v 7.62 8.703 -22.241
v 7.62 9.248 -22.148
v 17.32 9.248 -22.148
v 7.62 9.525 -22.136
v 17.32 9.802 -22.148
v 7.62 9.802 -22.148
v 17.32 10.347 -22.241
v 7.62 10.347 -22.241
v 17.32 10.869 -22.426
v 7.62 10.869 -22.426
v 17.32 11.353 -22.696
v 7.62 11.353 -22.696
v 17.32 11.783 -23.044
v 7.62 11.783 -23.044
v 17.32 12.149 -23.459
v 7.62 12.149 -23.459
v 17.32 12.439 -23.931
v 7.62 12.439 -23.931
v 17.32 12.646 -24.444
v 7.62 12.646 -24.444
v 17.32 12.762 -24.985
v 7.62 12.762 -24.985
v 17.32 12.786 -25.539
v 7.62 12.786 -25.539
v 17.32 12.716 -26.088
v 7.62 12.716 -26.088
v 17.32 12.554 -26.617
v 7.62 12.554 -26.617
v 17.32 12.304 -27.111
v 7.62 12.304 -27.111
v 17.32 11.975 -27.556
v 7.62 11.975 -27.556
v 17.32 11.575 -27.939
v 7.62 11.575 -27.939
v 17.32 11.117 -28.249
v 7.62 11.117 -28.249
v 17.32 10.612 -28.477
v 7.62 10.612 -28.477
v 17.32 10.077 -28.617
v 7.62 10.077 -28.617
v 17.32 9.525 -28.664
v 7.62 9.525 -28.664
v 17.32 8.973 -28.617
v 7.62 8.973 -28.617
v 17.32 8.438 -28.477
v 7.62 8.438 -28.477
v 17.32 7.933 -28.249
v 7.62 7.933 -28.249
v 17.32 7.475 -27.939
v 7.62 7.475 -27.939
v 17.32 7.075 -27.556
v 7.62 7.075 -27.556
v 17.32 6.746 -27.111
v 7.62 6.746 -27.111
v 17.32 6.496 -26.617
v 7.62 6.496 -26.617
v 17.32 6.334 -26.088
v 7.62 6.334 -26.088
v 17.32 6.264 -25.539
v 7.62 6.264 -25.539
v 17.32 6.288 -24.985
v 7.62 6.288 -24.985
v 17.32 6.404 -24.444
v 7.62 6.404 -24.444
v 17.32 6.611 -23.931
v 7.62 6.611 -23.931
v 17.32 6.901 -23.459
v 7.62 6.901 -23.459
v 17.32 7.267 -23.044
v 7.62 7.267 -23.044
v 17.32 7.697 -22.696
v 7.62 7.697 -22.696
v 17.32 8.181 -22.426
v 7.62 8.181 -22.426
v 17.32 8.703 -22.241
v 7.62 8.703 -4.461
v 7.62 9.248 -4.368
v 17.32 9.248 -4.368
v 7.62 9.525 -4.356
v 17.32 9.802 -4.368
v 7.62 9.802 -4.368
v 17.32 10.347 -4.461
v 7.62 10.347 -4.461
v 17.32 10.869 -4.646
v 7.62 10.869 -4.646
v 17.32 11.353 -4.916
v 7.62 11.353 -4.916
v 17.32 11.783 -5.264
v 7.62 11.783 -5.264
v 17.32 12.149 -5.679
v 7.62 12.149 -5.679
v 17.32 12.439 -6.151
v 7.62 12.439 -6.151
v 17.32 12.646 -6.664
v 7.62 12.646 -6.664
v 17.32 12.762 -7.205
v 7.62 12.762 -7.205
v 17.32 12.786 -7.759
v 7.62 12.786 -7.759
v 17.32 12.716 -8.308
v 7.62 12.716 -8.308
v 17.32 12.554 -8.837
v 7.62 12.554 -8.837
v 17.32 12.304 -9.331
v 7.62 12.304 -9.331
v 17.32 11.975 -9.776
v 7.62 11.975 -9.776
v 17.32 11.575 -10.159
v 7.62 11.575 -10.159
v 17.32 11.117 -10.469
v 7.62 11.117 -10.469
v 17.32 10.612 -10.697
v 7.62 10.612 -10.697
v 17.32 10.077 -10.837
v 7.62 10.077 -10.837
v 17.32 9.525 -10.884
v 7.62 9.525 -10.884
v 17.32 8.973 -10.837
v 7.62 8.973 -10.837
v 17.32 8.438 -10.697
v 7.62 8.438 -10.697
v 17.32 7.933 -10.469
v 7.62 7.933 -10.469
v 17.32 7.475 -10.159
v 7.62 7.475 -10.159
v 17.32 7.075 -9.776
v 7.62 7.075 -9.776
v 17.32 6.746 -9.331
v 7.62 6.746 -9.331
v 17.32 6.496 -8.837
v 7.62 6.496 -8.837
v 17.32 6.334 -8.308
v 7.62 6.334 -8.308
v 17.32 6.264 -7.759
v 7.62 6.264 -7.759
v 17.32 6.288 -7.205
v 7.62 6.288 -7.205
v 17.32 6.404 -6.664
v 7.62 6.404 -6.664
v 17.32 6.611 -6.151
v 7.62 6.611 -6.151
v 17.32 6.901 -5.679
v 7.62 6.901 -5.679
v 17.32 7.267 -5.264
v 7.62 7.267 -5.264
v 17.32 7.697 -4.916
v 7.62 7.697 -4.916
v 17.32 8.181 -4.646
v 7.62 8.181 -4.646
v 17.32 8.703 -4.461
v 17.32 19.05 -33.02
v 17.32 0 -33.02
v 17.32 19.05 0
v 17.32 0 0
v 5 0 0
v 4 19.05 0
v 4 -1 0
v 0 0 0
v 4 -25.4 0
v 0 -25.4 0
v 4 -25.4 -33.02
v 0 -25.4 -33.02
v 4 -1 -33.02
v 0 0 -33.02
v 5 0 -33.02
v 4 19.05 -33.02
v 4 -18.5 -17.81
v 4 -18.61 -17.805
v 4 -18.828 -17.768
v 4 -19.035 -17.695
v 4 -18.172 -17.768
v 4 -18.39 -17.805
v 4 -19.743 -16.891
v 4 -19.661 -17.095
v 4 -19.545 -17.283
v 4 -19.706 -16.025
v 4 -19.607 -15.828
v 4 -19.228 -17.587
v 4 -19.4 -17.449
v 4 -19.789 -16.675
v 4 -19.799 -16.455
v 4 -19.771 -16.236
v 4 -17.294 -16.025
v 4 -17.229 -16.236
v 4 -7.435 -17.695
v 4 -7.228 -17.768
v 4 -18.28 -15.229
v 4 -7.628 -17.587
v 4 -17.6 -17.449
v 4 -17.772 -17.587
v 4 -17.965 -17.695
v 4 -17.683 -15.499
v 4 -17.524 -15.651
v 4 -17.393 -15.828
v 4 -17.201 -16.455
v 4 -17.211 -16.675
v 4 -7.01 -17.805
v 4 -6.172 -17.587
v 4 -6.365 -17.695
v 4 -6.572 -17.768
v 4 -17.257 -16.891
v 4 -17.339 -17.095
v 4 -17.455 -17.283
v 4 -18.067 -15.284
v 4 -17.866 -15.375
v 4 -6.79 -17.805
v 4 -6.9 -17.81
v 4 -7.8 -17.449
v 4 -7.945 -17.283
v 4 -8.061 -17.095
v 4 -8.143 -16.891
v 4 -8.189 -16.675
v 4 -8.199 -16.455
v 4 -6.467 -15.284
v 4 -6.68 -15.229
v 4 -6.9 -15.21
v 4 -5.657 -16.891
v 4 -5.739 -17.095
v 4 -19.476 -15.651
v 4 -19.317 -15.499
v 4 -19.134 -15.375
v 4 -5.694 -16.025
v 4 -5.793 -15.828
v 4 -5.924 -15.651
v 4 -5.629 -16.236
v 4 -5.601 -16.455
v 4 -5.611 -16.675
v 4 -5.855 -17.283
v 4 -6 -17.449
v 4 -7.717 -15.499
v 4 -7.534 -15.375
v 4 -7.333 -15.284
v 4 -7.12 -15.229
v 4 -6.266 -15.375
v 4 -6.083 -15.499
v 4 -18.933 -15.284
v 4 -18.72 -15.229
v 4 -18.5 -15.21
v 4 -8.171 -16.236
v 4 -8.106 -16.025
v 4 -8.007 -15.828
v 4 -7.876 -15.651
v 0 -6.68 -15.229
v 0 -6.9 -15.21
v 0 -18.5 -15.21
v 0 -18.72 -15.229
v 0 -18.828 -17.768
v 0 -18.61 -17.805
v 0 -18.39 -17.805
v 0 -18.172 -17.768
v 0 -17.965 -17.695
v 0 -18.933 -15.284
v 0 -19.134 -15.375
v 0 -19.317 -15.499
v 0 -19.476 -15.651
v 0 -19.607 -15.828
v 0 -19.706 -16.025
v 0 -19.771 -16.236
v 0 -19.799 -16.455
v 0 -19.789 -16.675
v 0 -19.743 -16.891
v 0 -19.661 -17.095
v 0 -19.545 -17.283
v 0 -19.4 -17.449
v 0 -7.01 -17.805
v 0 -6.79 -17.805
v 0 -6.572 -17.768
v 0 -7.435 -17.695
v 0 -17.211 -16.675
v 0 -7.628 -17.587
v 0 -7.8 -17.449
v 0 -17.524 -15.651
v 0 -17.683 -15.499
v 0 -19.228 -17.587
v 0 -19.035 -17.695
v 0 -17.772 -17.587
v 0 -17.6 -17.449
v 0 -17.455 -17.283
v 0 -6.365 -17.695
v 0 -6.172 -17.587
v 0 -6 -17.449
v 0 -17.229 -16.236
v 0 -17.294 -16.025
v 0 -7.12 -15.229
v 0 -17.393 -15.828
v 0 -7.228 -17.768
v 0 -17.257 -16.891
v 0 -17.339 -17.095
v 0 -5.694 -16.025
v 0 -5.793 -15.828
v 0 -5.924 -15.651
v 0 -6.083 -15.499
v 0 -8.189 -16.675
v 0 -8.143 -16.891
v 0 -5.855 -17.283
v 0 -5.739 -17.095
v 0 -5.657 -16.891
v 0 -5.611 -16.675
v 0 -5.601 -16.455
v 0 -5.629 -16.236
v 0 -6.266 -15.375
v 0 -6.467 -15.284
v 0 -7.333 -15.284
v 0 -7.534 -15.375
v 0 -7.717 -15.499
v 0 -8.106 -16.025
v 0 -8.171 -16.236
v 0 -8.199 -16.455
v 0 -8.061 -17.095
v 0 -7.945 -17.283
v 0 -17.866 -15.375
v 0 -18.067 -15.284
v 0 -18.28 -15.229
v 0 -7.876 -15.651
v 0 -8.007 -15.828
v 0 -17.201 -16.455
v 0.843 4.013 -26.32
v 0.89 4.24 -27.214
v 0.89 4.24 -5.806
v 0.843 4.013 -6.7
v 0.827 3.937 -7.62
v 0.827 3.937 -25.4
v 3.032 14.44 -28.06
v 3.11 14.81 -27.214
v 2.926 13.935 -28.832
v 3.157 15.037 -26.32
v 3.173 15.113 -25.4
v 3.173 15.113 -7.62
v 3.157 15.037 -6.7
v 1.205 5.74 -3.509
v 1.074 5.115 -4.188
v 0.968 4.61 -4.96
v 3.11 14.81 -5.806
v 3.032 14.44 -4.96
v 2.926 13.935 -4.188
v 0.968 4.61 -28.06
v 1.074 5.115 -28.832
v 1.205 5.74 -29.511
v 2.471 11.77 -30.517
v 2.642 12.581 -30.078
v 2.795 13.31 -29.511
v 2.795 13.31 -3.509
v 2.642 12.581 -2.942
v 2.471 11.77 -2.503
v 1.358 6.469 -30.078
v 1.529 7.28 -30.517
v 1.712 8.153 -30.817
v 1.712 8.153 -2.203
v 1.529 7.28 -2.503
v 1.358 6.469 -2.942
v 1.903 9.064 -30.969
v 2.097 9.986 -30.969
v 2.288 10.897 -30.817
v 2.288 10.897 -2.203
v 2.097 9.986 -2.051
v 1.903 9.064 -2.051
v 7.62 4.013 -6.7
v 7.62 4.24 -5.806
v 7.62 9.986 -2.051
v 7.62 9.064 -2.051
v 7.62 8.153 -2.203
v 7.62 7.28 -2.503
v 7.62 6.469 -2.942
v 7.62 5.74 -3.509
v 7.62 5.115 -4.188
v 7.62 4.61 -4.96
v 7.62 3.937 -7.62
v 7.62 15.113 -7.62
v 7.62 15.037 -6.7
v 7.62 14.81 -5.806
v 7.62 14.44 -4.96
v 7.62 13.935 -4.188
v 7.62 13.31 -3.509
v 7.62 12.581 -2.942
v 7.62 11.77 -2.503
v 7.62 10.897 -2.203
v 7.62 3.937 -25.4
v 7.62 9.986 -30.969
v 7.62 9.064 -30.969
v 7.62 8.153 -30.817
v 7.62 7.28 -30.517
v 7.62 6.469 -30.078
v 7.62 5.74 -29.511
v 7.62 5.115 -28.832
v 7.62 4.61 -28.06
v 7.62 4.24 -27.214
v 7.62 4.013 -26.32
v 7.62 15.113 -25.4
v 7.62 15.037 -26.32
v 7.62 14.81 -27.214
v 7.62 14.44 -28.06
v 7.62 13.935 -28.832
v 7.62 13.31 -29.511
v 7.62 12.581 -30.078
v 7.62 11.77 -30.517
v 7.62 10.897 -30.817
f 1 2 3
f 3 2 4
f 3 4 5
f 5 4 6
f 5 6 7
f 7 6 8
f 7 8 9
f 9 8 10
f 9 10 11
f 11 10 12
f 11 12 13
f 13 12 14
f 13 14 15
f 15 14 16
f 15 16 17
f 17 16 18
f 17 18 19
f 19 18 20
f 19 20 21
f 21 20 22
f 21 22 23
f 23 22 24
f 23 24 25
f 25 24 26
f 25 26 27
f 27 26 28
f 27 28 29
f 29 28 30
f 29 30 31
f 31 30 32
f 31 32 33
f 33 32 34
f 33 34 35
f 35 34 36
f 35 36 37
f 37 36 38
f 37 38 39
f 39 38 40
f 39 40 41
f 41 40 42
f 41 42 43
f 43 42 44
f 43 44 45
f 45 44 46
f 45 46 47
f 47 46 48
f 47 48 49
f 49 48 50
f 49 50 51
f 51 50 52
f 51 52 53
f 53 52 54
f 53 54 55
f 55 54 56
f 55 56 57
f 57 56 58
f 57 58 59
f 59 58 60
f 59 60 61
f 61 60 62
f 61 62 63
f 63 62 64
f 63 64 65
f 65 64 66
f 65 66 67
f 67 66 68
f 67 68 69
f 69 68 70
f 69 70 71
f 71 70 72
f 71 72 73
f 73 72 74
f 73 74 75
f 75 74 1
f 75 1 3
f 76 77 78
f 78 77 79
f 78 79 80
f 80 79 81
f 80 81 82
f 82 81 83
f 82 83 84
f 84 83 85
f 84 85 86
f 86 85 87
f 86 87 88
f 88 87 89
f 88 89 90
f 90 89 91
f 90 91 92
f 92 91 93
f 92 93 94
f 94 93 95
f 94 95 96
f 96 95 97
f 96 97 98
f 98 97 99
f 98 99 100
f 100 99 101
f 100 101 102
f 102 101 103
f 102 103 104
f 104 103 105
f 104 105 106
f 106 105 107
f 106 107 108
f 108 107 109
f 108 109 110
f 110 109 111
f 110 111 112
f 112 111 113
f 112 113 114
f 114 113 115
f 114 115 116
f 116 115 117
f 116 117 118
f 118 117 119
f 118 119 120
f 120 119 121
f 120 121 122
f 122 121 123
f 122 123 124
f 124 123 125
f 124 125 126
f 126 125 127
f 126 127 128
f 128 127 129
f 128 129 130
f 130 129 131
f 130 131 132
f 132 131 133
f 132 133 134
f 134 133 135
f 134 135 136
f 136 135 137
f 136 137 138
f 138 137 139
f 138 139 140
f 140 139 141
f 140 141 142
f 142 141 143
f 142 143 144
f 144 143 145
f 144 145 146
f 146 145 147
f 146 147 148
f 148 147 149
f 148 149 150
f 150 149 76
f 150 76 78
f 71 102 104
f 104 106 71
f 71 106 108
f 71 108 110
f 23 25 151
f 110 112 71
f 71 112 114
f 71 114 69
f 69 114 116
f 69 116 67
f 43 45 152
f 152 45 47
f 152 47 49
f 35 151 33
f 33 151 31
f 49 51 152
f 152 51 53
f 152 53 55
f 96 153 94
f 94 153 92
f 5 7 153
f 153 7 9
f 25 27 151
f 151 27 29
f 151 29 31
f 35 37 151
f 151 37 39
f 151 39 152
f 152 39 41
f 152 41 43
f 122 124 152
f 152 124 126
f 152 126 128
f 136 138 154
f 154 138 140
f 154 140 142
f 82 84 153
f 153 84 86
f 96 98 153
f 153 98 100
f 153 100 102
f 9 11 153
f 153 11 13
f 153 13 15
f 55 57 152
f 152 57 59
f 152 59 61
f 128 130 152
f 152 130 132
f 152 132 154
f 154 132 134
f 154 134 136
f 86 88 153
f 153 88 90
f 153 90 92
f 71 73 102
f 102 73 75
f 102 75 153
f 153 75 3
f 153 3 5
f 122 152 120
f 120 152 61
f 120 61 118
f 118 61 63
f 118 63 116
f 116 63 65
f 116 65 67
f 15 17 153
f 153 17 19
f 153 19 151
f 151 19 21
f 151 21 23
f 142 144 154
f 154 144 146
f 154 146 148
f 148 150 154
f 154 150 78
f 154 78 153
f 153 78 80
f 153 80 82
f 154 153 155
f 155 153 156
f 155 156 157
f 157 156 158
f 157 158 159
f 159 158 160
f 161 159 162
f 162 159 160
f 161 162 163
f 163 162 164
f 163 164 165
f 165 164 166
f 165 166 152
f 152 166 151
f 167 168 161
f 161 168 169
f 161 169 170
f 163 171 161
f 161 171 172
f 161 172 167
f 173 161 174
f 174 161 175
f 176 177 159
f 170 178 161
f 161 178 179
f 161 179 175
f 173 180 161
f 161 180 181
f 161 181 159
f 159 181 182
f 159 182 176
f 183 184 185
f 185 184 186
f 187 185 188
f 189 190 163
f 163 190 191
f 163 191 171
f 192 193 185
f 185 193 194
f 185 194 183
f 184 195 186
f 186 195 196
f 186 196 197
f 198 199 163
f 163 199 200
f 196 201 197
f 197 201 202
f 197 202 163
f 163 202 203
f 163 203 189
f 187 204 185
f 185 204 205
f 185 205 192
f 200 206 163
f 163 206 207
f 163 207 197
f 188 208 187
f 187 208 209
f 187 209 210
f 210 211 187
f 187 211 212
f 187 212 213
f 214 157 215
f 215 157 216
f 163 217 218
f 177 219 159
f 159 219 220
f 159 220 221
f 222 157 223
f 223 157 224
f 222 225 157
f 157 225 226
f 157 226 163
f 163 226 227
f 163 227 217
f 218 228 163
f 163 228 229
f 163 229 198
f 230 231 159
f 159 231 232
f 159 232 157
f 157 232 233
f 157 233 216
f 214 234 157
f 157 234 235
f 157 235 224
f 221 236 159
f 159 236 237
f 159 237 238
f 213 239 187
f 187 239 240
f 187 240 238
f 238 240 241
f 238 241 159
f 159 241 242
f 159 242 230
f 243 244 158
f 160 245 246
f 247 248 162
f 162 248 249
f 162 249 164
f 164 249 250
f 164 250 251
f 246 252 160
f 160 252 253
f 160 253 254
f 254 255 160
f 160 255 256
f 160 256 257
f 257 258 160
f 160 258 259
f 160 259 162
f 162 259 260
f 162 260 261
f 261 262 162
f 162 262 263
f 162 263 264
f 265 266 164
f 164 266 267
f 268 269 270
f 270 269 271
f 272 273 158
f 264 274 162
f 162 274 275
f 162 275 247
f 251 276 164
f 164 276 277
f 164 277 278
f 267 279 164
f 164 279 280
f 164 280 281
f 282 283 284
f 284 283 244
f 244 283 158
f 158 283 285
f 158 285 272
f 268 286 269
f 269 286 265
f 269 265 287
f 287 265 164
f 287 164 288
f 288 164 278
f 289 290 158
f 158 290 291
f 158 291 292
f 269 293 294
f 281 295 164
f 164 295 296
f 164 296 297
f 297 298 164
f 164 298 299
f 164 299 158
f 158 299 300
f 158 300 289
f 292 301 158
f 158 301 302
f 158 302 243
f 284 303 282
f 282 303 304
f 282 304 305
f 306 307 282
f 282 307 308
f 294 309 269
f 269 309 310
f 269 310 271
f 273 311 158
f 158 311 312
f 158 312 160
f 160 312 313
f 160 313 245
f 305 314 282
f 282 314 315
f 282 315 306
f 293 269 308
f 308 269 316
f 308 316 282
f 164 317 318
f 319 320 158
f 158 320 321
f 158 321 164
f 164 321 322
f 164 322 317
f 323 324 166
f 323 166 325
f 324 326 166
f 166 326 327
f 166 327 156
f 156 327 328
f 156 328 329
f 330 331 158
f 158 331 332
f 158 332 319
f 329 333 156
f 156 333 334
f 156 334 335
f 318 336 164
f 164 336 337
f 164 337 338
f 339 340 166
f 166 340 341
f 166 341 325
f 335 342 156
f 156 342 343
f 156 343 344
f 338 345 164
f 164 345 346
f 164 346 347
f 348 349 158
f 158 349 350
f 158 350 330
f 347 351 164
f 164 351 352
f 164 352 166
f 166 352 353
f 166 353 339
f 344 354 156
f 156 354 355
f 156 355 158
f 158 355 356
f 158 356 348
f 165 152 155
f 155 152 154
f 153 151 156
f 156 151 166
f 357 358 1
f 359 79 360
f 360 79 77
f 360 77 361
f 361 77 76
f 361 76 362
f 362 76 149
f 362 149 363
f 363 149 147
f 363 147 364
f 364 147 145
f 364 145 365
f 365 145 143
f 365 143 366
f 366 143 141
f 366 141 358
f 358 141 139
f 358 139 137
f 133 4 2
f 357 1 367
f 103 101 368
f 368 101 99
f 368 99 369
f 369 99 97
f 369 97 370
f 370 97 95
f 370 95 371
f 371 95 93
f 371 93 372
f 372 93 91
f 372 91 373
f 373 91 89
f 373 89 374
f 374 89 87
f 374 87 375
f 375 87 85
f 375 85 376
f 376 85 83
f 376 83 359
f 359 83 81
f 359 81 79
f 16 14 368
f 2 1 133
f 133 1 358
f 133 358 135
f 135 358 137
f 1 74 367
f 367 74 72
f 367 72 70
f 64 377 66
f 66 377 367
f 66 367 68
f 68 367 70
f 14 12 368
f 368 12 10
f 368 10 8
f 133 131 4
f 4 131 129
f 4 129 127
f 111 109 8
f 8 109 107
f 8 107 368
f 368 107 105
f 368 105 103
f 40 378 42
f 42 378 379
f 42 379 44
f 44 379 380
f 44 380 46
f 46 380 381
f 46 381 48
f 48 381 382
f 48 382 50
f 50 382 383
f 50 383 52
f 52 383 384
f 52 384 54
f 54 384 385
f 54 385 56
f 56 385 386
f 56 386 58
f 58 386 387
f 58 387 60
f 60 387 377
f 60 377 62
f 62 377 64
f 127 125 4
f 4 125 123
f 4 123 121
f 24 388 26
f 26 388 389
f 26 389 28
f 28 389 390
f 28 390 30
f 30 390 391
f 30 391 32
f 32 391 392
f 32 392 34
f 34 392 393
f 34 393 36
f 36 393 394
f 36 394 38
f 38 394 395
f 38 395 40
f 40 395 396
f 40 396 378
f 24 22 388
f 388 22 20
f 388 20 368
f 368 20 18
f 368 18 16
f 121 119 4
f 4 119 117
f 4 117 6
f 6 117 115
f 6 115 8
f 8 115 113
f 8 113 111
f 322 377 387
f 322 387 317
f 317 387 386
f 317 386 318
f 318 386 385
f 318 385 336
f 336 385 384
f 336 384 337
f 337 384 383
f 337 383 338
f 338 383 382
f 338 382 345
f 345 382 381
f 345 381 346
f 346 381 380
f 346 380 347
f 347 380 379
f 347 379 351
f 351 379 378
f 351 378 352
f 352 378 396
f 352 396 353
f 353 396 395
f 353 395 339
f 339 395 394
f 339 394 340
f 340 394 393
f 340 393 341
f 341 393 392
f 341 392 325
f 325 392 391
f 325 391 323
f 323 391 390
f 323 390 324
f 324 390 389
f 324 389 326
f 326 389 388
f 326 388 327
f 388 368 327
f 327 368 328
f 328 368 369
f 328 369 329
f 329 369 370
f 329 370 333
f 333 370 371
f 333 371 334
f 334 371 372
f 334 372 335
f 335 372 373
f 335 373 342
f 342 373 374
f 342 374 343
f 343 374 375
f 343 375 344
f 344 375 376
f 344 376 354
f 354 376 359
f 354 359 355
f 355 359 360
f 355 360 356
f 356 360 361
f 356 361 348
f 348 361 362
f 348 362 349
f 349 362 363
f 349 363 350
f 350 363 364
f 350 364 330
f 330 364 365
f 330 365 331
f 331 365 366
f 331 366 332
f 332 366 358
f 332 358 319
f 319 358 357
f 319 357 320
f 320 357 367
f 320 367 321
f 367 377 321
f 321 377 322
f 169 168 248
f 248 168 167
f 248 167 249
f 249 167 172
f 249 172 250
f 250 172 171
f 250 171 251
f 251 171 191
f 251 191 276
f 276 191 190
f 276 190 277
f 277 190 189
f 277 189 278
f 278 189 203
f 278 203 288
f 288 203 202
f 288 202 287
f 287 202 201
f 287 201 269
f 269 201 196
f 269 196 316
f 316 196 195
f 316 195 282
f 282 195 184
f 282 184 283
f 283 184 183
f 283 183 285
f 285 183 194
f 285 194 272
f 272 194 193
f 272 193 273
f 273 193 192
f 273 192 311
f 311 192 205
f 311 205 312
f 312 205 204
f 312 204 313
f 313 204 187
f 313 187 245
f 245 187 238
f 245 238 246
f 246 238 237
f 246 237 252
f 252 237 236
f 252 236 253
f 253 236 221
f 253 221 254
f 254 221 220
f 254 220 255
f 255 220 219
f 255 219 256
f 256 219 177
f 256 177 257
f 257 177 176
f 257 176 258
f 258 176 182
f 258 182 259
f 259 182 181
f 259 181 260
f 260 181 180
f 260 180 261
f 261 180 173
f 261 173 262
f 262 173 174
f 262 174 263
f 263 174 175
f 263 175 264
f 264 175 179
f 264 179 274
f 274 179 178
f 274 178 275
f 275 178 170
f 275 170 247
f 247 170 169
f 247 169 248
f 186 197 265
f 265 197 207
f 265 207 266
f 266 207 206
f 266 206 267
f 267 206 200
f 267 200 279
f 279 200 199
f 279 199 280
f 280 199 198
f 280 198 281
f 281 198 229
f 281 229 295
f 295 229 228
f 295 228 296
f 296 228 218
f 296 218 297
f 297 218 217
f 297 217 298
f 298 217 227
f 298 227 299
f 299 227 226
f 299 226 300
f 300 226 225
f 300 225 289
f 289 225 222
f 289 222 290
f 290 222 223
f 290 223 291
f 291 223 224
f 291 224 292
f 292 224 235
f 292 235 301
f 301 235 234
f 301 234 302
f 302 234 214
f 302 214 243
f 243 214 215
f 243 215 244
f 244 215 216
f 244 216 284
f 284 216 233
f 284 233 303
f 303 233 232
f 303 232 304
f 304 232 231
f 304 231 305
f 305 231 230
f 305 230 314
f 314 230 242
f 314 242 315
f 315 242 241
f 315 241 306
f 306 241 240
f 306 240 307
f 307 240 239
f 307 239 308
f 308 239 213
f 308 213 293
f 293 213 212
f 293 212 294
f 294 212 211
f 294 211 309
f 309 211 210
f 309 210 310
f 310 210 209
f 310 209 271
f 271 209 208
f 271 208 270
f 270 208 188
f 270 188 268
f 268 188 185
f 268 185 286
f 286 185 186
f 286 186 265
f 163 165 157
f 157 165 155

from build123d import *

# Parameters (mm, degrees)
SKETCH1_W                = 33.02
SKETCH1_H                = 25.4
BOSS_EXTRUDE1_DEPTH      = 4
SKETCH2_W                = 33.02
SKETCH2_H                = 19.05
BOSS_EXTRUDE2_DEPTH      = 13.320199928
BOSS_EXTRUDE3_DEPTH      = 33.02
F_0_257_DIAMETER_HOLE1_D = 6.5278
CUT_EXTRUDE1_DEPTH       = 7.62
M2_CLEARANCE_HOLE1_D     = 2.6
CHAMFER1_SIZE            = 1


with BuildPart() as part:
    # Sketch1 → Boss-Extrude1 (new body)
    with BuildSketch(Plane(origin=(0, 0, 0), x_dir=(0, 0, -1), z_dir=(1, 0, 0))):
        with Locations((16.51, -12.7)):
            Rectangle(SKETCH1_W, SKETCH1_H)
    extrude(amount=BOSS_EXTRUDE1_DEPTH)



with BuildPart() as body_2:
    # Sketch2 → Boss-Extrude2 (new body)
    with BuildSketch(Plane(origin=(4, 0, 0), x_dir=(0, 0, -1), z_dir=(1, 0, 0))):
        with Locations((16.51, 9.525)):
            Rectangle(SKETCH2_W, SKETCH2_H)
    extrude(amount=BOSS_EXTRUDE2_DEPTH)


with BuildPart() as part_1:
    add(part.part)

    add(body_2.part)  # Boss-Extrude3 merges body 2
    # Sketch3 → Boss-Extrude3 (add)
    with BuildSketch(Plane.XY):
        Polygon((4, 19.05), (0, 0), (4, 0), align=None)
    extrude(amount=-BOSS_EXTRUDE3_DEPTH)

    # F (0.257) Diameter Hole1 (through all)
    with Locations(Plane(origin=(17.320199928, 0, 0), x_dir=(0, 0, -1), z_dir=(1, 0, 0))):
        with Locations((7.62, 9.525), (25.4, 9.525)):
            Hole(F_0_257_DIAMETER_HOLE1_D / 2)

    # Sketch11 → Cut-Extrude1 (cut)
    with BuildSketch(Plane.ZY):
        with BuildLine():
            Line((-25.4, 15.113), (-7.62, 15.113))
            ThreePointArc((-7.62, 15.113), (-2.032, 9.525), (-7.62, 3.937))
            Line((-7.62, 3.937), (-25.4, 3.937))
            ThreePointArc((-25.4, 3.937), (-30.988, 9.525), (-25.4, 15.113))
        make_face()
    extrude(amount=-CUT_EXTRUDE1_DEPTH, mode=Mode.SUBTRACT)

    # M2 Clearance Hole1 (through all)
    with Locations(Plane.ZY):
        with Locations((-16.51, -6.9), (-16.51, -18.5)):
            Hole(M2_CLEARANCE_HOLE1_D / 2)

    # Chamfer1
    chamfer1_edges = [part_1.edges().sort_by_distance(p)[0] for p in [
        (4, 0, -16.51),
    ]]
    chamfer(chamfer1_edges, length=CHAMFER1_SIZE)


solid = part_1.part
